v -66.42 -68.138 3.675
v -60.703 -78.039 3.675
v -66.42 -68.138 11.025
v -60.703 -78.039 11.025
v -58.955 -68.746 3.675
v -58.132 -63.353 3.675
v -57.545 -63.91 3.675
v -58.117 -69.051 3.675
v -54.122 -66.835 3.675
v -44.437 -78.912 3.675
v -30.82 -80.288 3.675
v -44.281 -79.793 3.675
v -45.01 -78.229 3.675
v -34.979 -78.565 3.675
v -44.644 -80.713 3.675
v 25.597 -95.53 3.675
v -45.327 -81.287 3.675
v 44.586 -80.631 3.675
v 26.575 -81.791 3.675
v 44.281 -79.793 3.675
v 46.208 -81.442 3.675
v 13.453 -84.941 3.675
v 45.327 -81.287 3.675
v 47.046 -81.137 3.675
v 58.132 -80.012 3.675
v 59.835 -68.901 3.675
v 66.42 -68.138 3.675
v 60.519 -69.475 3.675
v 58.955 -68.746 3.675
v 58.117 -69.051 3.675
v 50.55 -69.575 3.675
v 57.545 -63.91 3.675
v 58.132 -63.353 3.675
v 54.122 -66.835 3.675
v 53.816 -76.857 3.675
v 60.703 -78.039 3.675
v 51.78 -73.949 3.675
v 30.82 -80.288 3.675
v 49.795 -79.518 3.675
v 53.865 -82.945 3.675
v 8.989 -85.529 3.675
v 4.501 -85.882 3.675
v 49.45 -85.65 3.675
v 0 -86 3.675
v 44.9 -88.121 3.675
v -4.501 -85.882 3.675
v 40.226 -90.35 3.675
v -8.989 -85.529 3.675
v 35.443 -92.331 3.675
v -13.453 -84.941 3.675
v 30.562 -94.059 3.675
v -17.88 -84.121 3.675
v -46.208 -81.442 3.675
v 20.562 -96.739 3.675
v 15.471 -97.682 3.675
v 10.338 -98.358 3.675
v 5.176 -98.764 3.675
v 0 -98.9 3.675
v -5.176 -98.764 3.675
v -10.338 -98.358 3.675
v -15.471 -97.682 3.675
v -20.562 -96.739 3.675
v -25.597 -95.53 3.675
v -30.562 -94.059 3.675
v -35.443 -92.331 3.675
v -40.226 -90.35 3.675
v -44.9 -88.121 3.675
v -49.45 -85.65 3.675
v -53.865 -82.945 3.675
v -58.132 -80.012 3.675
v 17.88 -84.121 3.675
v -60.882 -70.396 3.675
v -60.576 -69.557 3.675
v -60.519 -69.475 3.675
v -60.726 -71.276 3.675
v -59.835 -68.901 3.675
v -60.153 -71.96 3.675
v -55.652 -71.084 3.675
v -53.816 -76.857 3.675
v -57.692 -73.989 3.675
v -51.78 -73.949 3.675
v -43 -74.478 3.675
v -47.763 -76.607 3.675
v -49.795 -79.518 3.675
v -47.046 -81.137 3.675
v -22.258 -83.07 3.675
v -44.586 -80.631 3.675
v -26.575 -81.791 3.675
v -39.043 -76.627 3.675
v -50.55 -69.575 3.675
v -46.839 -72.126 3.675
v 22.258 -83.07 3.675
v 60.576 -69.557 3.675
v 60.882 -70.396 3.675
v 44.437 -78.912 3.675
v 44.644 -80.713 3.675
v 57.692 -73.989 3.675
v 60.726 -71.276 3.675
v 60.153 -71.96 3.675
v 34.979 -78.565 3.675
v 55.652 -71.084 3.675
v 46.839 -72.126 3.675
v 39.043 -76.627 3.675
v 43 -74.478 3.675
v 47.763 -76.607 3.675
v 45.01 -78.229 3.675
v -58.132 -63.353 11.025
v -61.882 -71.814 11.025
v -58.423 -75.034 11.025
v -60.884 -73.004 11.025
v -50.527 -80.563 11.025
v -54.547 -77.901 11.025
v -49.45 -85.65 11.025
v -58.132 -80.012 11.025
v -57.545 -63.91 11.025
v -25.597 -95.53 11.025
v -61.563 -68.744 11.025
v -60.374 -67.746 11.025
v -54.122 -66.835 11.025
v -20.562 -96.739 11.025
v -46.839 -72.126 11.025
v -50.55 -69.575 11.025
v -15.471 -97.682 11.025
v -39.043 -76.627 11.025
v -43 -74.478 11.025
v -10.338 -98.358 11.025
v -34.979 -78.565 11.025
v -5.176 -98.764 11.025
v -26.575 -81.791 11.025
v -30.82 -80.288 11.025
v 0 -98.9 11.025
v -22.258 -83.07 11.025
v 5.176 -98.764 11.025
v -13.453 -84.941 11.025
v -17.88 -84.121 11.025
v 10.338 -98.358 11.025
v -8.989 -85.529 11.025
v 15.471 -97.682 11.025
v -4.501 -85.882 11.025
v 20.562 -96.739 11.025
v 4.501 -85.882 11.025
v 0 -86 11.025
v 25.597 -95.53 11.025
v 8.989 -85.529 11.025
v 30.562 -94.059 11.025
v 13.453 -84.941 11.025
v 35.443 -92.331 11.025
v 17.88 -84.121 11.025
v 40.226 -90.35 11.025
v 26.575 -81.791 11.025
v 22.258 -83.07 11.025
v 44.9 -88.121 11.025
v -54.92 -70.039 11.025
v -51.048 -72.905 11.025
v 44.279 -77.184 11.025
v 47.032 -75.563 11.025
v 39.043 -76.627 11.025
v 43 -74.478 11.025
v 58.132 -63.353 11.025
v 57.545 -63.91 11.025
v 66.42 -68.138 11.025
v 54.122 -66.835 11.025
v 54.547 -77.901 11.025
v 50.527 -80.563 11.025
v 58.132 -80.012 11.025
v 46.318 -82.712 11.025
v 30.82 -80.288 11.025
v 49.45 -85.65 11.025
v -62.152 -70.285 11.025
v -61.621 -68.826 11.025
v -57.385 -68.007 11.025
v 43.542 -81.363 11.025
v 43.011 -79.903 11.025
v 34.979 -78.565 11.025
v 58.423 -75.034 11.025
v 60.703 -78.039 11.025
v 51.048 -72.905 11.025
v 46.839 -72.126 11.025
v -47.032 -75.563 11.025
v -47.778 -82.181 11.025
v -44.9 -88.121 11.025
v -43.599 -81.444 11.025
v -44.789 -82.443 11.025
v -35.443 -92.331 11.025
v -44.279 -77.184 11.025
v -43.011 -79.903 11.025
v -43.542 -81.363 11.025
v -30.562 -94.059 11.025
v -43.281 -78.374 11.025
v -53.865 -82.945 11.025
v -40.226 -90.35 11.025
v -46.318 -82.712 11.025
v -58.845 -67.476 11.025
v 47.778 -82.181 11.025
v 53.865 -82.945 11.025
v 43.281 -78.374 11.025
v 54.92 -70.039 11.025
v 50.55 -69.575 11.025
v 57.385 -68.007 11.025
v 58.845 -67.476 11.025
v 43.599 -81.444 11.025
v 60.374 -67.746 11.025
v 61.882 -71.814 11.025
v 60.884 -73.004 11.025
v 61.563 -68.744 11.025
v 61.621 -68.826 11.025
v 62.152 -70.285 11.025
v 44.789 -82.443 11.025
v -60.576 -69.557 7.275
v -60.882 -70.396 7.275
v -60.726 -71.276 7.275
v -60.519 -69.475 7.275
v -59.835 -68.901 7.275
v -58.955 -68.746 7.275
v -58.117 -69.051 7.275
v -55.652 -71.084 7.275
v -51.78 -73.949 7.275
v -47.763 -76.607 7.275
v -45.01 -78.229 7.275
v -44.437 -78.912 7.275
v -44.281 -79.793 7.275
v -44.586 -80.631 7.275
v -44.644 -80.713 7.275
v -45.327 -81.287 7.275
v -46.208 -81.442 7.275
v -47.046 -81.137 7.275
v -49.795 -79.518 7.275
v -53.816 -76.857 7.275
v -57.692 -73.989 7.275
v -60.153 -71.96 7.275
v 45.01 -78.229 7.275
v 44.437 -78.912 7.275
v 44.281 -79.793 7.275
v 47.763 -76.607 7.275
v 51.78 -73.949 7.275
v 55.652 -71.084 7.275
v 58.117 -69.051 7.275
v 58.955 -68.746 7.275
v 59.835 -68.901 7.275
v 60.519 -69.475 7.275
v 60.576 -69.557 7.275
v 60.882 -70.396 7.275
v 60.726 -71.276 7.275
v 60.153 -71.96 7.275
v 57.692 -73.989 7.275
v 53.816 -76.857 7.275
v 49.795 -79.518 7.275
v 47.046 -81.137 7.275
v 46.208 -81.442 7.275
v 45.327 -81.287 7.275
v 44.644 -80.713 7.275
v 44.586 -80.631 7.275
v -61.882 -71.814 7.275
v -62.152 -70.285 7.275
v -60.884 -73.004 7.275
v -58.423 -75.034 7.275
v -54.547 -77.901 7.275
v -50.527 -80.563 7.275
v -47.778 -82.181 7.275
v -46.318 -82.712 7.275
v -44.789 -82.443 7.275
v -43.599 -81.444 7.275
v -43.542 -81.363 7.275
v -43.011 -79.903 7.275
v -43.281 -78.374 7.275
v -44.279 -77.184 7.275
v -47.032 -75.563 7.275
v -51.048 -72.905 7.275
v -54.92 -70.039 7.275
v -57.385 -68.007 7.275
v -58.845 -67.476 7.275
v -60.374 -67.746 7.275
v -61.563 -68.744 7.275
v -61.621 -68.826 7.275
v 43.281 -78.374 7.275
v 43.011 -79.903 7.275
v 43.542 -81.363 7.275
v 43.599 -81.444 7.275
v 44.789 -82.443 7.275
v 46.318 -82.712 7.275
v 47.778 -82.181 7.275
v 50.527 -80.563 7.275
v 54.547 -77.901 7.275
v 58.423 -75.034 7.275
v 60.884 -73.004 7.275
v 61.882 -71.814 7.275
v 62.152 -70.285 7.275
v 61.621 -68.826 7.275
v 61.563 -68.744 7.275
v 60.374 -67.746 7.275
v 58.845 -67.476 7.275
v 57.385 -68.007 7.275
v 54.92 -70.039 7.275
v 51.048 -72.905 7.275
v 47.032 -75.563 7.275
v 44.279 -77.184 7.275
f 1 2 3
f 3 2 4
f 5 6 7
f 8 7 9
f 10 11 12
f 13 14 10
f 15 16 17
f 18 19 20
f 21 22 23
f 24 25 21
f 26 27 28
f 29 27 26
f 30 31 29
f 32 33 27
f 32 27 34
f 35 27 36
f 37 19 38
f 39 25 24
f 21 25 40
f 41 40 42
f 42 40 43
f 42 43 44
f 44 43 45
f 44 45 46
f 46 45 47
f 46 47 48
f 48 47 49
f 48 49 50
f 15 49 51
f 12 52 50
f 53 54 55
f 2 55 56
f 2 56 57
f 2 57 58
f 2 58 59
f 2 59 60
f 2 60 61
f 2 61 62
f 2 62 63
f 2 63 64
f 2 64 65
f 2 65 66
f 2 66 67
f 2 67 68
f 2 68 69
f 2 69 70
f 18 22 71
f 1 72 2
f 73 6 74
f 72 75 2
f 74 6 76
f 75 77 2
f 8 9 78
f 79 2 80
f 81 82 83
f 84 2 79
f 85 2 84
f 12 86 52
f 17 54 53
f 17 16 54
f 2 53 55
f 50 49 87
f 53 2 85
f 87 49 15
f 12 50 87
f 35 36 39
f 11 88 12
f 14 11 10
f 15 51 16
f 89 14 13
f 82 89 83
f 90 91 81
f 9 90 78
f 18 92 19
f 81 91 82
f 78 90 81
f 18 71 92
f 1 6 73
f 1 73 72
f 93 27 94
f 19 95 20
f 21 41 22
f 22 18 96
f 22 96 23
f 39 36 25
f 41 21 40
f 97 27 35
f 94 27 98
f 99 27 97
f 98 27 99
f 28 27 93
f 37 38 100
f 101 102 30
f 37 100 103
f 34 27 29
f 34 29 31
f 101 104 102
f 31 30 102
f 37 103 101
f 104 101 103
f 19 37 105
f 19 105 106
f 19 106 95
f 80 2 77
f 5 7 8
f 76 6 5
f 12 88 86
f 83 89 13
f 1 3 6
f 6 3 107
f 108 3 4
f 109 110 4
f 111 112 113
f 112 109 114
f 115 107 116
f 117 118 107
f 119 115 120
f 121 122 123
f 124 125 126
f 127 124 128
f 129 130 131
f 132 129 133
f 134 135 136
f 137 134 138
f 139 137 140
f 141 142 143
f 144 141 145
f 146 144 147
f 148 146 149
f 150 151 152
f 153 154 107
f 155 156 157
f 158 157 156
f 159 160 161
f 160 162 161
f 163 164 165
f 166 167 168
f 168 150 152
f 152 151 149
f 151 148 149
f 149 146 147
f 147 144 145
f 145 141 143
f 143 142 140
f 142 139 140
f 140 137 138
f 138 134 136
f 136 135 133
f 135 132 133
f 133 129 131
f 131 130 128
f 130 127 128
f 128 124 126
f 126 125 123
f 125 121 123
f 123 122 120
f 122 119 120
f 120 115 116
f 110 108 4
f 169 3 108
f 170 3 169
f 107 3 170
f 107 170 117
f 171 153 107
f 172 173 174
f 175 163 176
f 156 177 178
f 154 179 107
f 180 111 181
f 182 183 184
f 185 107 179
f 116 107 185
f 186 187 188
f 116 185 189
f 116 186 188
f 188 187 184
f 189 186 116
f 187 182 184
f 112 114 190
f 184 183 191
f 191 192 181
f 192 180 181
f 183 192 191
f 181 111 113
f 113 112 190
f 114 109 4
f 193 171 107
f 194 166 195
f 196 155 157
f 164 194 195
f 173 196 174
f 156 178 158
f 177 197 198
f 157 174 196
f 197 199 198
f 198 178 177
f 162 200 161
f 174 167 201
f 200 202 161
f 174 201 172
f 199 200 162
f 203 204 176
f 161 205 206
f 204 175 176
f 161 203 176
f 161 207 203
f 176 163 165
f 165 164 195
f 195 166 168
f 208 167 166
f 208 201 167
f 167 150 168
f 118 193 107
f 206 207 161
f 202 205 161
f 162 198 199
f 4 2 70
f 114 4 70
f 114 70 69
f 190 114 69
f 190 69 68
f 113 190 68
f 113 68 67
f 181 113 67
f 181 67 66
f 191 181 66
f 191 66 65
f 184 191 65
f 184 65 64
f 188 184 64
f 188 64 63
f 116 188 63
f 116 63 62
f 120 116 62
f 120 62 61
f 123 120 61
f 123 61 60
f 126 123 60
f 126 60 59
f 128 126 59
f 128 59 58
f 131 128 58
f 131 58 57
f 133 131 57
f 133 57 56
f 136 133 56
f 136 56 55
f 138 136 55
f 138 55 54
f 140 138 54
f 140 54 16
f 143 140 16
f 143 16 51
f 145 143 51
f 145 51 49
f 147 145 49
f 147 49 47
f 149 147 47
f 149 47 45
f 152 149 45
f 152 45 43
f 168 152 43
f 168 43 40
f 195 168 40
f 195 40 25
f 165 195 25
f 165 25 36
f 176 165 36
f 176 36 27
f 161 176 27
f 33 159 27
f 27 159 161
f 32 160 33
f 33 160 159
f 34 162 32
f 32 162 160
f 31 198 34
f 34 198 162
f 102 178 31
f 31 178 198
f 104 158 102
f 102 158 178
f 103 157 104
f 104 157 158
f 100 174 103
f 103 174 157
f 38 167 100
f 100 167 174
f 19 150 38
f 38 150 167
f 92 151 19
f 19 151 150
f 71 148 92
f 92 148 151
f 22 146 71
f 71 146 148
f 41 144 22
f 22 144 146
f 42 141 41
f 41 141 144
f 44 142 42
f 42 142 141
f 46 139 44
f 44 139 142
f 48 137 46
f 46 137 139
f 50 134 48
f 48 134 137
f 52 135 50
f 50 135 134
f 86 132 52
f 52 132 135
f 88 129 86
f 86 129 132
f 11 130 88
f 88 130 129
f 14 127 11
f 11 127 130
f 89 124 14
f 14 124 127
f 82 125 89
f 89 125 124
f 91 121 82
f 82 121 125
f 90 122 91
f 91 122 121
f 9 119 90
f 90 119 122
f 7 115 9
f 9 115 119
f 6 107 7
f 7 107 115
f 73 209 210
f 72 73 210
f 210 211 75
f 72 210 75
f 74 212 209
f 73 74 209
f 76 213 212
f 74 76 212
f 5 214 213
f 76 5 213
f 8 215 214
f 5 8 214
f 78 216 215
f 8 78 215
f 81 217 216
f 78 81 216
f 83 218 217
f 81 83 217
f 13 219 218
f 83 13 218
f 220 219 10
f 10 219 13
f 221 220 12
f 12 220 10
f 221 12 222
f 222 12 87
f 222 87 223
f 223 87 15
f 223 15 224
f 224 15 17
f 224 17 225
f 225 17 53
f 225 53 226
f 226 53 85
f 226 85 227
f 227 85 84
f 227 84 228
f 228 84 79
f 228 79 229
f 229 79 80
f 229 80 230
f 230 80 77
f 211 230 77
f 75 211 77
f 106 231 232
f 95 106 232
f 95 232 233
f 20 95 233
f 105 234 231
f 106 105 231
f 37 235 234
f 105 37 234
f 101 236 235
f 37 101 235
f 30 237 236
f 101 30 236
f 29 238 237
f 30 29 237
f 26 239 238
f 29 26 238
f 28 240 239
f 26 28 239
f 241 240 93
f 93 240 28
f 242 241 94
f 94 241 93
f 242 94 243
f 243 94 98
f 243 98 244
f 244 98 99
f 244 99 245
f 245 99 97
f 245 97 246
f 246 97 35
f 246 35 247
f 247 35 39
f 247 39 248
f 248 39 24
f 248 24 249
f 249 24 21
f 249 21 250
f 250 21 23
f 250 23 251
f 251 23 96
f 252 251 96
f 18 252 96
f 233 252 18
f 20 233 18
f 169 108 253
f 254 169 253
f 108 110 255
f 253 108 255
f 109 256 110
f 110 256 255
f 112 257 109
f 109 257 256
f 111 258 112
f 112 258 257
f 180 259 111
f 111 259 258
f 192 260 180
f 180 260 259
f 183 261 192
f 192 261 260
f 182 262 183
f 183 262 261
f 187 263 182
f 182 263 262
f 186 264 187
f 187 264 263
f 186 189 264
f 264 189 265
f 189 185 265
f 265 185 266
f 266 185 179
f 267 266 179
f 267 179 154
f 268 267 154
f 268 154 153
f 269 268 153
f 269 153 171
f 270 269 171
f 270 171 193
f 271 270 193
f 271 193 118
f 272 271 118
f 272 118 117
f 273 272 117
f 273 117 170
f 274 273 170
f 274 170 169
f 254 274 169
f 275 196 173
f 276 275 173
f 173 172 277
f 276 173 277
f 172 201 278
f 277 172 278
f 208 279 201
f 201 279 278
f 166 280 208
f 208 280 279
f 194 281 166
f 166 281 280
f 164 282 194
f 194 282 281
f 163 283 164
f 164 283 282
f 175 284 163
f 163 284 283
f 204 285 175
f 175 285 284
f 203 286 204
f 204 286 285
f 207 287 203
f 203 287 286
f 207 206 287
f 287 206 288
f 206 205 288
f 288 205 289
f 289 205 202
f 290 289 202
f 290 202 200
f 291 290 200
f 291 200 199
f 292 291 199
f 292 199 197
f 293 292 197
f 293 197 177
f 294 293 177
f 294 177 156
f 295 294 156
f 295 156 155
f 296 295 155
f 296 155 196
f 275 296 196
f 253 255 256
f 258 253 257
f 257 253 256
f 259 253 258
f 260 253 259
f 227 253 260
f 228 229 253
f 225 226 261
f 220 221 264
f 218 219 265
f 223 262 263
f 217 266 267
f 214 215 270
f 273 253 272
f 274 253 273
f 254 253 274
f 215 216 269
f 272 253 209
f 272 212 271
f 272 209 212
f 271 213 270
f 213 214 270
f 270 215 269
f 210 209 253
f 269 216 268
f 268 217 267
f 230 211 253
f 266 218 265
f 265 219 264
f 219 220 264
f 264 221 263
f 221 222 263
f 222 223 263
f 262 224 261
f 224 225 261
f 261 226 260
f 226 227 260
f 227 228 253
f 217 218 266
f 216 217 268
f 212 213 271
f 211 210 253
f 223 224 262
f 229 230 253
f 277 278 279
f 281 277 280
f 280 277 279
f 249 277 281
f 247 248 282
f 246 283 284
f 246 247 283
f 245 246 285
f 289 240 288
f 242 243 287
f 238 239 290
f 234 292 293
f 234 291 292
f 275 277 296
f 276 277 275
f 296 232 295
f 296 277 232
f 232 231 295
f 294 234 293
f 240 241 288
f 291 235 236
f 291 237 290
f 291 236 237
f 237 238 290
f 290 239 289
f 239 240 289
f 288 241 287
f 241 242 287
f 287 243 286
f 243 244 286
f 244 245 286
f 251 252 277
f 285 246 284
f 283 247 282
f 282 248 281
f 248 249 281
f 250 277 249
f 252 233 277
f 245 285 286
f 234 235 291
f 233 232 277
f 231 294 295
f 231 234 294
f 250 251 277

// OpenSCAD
// file: configuration.scad
// Increase this if your slicer or printer make holes too tight.
extra_radius = 0.1;

// OD = outside diameter, corner to corner.
m3_nut_od = 6.1;
m3_nut_radius = m3_nut_od/2 + 0.2 + extra_radius;

// Major diameter of metric 3mm thread.
m3_major = 2.85;
m3_radius = m3_major/2 + extra_radius;
m3_wide_radius = m3_major/2 + extra_radius + 0.2;

// NEMA17 stepper motors.
motor_shaft_diameter = 5;
motor_shaft_radius = motor_shaft_diameter/2 + extra_radius;

// Frame brackets.
thickness = 3.6;
// main file
include <configuration.scad>;

fsr_height = 1.0;
height = 25.4 / 4 + fsr_height;
glass_radius = 172 / 2;
outside_radius = glass_radius * 1.15;
triangle_radius = glass_radius * 2.13;

module curve_slot(r, h) {
  linear_extrude(h) minkowski() {
    union() {
      circle(r=r, h=2*height, center=true, $fn=12);
    }
    intersection() {
      square([16, 3*glass_radius], center=true);
      difference() {
        circle(r=glass_radius+6.1, $fn=120);
        circle(r=glass_radius+6, $fn=120);
      }
    }
  }
}

module glass_frame() {
  difference() {
    linear_extrude(height=height) {
      difference() {
        intersection() {
          rotate([0, 0, 30]) circle(r=triangle_radius, $fn=3);
          circle(r=outside_radius, $fn=120);
        }
        circle(r=glass_radius, $fn=120);
        for (a = [0:120:359]) {
          rotate([0, 0, a]) translate([0, glass_radius])
            square([glass_radius*0.6, glass_radius], center=true);
        }
        translate([0, glass_radius / 2])
          square([2*triangle_radius, triangle_radius], center=true);
      }
    }
    for (a = [-35, 35]) rotate([0, 0, a]) {
	  translate([0, 0, -height/2]) #
        curve_slot(r=m3_wide_radius, h=2*height);
	  translate([0, 0, thickness]) #
        curve_slot(r=3, h=2*height);
    }
  }
}

translate([0, 0, height/2])
glass_frame();
